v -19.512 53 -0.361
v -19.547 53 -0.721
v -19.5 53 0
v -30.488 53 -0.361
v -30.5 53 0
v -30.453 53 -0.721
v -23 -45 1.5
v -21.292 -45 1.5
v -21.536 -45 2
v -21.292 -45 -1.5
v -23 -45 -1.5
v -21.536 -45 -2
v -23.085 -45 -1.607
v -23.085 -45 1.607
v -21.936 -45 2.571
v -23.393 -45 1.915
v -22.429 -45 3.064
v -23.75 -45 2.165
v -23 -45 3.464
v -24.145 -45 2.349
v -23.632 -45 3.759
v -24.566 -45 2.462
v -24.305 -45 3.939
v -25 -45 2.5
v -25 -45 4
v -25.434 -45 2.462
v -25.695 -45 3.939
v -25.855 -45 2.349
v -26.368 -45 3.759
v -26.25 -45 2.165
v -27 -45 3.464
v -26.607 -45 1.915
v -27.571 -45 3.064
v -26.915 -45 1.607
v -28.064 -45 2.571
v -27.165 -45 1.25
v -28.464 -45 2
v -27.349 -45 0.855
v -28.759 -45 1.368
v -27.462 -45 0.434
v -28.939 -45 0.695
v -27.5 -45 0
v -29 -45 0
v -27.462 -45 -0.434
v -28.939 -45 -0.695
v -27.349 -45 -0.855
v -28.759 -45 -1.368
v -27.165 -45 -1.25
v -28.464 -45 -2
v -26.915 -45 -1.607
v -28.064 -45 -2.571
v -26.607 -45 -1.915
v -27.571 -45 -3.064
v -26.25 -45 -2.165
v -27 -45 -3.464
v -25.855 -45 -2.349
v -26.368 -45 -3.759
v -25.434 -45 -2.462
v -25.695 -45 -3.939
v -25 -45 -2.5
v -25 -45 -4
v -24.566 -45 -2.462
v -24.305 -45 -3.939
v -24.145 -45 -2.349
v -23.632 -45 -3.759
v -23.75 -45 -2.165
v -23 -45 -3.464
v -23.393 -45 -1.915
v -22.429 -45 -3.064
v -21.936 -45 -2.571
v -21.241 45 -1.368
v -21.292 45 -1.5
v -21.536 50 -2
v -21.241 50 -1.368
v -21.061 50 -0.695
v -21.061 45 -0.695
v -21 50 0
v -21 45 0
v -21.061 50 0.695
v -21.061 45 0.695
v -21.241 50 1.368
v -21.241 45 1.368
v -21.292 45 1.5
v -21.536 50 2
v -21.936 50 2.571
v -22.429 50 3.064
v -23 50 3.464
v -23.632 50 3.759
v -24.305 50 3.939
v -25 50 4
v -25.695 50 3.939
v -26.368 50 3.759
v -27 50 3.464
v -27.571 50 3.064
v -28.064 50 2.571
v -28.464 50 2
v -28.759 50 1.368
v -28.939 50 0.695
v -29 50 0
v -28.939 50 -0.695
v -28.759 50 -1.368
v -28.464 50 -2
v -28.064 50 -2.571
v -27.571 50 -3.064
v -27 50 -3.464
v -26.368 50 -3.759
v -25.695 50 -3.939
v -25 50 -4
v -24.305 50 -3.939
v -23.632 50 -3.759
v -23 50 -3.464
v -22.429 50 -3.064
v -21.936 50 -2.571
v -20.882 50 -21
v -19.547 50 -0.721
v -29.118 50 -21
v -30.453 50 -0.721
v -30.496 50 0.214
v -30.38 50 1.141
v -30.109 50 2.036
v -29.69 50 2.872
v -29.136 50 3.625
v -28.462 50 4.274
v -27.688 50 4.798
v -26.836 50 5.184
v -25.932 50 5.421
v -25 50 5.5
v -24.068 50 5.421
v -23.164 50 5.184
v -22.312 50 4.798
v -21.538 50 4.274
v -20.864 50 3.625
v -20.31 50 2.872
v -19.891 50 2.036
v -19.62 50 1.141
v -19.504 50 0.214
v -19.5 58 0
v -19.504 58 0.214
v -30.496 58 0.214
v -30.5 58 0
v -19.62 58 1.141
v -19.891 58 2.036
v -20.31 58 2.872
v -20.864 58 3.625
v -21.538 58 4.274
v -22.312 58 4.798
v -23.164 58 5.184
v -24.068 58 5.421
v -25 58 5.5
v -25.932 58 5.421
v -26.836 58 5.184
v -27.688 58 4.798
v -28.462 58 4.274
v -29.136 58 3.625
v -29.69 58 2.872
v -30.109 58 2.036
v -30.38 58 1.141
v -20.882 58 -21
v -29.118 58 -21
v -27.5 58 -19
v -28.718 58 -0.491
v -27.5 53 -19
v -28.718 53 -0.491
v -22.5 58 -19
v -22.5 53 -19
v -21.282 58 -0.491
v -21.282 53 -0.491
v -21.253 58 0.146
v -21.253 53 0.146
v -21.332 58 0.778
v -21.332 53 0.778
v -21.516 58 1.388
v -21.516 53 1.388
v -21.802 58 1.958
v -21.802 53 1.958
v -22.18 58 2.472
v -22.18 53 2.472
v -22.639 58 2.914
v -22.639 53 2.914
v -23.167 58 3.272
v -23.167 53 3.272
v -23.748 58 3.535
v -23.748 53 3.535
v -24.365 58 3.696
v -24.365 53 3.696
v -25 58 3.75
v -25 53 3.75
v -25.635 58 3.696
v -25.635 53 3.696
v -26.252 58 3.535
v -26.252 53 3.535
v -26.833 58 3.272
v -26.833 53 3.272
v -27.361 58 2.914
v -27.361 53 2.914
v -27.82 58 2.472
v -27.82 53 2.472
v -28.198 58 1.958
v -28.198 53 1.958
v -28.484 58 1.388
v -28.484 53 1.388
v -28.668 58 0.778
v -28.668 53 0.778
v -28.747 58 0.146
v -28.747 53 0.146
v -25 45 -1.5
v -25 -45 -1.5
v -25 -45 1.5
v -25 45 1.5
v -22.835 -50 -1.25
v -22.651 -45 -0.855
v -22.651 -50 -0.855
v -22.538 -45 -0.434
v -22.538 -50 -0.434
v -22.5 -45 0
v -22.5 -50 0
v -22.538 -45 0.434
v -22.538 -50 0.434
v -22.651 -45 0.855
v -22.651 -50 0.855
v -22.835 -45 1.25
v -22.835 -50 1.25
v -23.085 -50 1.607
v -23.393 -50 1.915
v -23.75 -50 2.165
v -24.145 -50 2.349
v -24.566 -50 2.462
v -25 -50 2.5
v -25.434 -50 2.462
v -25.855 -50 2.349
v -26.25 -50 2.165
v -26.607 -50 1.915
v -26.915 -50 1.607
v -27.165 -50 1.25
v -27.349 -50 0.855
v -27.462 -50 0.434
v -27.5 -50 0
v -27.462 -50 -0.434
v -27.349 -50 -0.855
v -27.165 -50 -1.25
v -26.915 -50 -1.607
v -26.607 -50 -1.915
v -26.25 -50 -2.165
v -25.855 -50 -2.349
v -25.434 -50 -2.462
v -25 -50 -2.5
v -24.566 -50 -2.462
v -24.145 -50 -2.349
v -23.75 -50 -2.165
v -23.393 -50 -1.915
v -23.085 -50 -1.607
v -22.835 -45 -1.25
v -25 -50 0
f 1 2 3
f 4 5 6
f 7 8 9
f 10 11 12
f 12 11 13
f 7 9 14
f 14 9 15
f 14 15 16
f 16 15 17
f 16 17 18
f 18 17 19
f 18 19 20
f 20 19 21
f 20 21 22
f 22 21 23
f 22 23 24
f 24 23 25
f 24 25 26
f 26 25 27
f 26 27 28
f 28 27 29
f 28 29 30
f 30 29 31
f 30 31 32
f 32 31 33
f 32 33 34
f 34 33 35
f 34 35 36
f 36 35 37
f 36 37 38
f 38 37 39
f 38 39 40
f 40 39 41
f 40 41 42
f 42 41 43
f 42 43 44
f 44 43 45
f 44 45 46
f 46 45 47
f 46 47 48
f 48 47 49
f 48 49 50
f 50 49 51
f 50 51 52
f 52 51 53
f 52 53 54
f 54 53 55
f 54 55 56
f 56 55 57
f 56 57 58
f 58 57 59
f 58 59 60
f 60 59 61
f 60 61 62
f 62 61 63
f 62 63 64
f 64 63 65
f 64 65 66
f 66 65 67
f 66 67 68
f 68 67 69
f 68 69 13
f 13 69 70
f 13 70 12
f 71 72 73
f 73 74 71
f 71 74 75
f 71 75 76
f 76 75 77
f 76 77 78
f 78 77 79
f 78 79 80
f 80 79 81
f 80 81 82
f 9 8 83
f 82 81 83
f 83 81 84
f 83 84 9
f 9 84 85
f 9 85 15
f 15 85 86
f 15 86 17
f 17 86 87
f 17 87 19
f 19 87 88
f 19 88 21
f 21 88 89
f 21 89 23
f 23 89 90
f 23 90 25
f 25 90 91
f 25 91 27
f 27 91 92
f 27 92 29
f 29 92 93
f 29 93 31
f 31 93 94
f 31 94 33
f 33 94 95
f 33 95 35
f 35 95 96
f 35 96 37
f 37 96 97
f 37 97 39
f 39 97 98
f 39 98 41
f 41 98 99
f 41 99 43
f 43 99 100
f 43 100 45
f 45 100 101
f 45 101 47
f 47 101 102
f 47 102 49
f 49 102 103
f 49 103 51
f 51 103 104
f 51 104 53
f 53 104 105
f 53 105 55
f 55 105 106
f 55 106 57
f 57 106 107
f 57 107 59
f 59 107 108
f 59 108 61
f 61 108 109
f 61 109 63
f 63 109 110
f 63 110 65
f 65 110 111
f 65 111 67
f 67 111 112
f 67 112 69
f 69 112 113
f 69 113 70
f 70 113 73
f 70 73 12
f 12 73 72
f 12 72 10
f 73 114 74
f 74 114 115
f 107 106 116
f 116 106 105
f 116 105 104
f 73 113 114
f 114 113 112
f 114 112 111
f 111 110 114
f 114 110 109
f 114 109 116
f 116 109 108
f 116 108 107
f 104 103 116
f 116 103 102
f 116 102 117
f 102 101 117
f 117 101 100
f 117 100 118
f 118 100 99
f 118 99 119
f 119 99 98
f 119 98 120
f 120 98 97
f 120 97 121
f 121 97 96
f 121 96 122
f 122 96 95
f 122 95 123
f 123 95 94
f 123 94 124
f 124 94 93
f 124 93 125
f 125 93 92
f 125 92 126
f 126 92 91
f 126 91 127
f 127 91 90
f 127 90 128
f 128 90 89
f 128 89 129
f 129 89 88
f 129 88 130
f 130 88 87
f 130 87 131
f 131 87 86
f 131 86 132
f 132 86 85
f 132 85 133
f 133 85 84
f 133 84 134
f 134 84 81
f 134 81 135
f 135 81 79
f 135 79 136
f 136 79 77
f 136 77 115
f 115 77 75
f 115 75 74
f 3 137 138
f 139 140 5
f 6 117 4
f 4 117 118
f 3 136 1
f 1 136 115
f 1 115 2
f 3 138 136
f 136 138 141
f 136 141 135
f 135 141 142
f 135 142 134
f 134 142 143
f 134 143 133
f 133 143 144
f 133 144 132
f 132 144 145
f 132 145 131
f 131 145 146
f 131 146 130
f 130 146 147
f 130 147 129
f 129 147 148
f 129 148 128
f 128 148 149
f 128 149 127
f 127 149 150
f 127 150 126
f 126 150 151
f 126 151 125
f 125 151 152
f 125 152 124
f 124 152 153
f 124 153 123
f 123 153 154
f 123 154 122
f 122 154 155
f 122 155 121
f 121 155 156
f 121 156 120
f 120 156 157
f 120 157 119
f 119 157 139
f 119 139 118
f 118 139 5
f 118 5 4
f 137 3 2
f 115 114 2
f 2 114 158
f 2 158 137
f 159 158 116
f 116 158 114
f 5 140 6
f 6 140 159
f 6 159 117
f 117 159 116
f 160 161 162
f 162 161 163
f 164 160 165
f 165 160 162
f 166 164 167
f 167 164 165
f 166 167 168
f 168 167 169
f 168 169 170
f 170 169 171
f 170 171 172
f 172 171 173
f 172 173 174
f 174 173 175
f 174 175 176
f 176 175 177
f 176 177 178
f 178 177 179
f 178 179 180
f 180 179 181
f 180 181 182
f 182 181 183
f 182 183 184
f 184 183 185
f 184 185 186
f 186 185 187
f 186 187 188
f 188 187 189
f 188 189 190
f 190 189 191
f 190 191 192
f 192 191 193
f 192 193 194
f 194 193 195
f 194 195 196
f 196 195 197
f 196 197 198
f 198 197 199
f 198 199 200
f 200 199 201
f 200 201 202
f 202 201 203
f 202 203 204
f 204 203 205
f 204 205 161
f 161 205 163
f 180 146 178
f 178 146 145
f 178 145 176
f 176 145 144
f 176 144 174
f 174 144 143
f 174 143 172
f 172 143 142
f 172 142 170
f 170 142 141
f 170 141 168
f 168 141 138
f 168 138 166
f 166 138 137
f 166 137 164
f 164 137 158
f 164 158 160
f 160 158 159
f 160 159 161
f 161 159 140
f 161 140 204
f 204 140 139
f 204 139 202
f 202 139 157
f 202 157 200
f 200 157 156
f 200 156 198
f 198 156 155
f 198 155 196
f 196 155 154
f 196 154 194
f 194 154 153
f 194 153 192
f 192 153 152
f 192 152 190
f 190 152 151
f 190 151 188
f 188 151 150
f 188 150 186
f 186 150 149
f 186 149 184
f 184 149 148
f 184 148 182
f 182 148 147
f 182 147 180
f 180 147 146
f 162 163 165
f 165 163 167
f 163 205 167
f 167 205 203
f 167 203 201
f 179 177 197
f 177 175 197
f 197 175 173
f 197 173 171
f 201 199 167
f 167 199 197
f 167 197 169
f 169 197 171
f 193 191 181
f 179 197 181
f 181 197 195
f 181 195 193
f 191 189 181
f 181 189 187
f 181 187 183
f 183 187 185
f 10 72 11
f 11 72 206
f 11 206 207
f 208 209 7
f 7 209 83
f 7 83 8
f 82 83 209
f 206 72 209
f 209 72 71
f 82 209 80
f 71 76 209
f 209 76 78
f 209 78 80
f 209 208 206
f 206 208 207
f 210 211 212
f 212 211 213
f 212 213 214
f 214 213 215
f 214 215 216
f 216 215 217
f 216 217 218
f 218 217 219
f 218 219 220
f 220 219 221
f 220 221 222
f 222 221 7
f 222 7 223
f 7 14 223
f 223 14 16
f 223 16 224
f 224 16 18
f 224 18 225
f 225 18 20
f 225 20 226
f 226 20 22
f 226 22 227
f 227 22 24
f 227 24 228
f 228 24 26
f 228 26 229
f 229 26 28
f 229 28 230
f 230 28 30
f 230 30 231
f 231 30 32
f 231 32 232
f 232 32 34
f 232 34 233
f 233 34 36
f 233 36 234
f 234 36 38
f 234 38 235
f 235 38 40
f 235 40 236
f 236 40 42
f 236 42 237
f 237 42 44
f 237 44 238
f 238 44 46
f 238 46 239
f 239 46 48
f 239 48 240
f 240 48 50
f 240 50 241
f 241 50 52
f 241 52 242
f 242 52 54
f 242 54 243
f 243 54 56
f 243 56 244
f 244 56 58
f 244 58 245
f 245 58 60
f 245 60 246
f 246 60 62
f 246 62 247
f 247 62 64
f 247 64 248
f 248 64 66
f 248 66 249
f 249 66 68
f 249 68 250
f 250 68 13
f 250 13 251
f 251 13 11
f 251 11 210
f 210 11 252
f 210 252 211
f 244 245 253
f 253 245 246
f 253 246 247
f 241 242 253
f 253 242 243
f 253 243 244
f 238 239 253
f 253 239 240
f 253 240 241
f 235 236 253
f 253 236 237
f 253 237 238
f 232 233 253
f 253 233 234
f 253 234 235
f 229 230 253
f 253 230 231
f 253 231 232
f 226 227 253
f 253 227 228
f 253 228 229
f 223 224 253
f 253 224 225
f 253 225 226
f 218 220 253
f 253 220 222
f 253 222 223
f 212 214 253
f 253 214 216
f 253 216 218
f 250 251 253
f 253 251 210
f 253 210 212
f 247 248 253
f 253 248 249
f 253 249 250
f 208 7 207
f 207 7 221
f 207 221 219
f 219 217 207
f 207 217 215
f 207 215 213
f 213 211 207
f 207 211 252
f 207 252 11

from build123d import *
from build123d.topology import SkipClean

# Parameters (mm, degrees)
SKETCH2_W                = 50
SKETCH2_H                = 90
BOSS_EXTRUDE1_DEPTH      = 1.5
BOSS_EXTRUDE2_DEPTH      = 45
BOSS_EXTRUDE2_DEPTH_BACK = 50
SKETCH3_R                = 4
BOSS_EXTRUDE3_DEPTH      = 3
BOSS_EXTRUDE4_DEPTH      = 5
SKETCH6_W                = 3
SKETCH6_H                = 90
CUT_EXTRUDE1_DEPTH       = 50
SKETCH7_R                = 2.5
BOSS_EXTRUDE5_DEPTH      = 5


with BuildPart() as part:
    # Sketch2 → Boss-Extrude1 (new, symmetric)
    with BuildSketch(Plane.XY):
        Rectangle(SKETCH2_W, SKETCH2_H)
    extrude(amount=BOSS_EXTRUDE1_DEPTH, both=True)

    # Sketch3 → Boss-Extrude2 (add, two sides: drawn at the far end of the back side and taken through both)
    with BuildSketch(Plane.XZ.offset(-BOSS_EXTRUDE2_DEPTH_BACK)):
        with Locations(Location((-25, 0, 0), (0, 0, 270))):
            Circle(SKETCH3_R)
    extrude(amount=BOSS_EXTRUDE2_DEPTH + BOSS_EXTRUDE2_DEPTH_BACK)

    # Sketch4 → Boss-Extrude3 (add)
    with BuildSketch(Plane(origin=(0, 50, 0), x_dir=(1, 0, 0), z_dir=(0, 1, 0))):
        with BuildLine():
            ThreePointArc((-30.45259438, 0.72056542), (-25, -5.5), (-19.54740562, 0.72056542))
            Line((-19.54740562, 0.72056542), (-20.881578947, 21))
            Line((-20.881578947, 21), (-29.118421053, 21))
            Line((-29.118421053, 21), (-30.45259438, 0.72056542))
        make_face()
    extrude(amount=BOSS_EXTRUDE3_DEPTH)

    # Sketch5 → Boss-Extrude4 (add)
    with SkipClean():  # the faces are left unmerged after this step: merging them gives an invalid solid
        with BuildSketch(Plane(origin=(0, 53, -53), x_dir=(1, 0, 0), z_dir=(0, -1, 0))):
            with BuildLine():
                Line((-30.5, 53), (-29.118421053, 32))
                Line((-29.118421053, 32), (-20.881578947, 32))
                Line((-20.881578947, 32), (-19.5, 53))
                ThreePointArc((-19.5, 53), (-25, 58.5), (-30.5, 53))
            make_face()
            with BuildLine():
                ThreePointArc((-28.717677987, 52.508705396), (-25, 56.75), (-21.282322013, 52.508705396))
                Line((-21.282322013, 52.508705396), (-22.5, 34))
                Line((-22.5, 34), (-27.5, 34))
                Line((-27.5, 34), (-28.717677987, 52.508705396))
            make_face(mode=Mode.SUBTRACT)
        extrude(amount=-BOSS_EXTRUDE4_DEPTH)

    # Sketch6 → Cut-Extrude1 (cut)
    with SkipClean():  # the faces are left unmerged after this step: merging them gives an invalid solid
        with BuildSketch(Plane(origin=(25, 0, 0), x_dir=(0, 0, -1), z_dir=(1, 0, 0))):
            Rectangle(SKETCH6_W, SKETCH6_H)
        extrude(amount=-CUT_EXTRUDE1_DEPTH, mode=Mode.SUBTRACT)

    # Sketch7 → Boss-Extrude5 (add)
    with SkipClean():  # the faces are left unmerged after this step: merging them gives an invalid solid
        with BuildSketch(Plane.XZ.offset(45)):
            with Locations(Location((-25, 0, 0), (0, 0, 36.869897646))):
                Circle(SKETCH7_R)
        extrude(amount=BOSS_EXTRUDE5_DEPTH)


solid = part.part
